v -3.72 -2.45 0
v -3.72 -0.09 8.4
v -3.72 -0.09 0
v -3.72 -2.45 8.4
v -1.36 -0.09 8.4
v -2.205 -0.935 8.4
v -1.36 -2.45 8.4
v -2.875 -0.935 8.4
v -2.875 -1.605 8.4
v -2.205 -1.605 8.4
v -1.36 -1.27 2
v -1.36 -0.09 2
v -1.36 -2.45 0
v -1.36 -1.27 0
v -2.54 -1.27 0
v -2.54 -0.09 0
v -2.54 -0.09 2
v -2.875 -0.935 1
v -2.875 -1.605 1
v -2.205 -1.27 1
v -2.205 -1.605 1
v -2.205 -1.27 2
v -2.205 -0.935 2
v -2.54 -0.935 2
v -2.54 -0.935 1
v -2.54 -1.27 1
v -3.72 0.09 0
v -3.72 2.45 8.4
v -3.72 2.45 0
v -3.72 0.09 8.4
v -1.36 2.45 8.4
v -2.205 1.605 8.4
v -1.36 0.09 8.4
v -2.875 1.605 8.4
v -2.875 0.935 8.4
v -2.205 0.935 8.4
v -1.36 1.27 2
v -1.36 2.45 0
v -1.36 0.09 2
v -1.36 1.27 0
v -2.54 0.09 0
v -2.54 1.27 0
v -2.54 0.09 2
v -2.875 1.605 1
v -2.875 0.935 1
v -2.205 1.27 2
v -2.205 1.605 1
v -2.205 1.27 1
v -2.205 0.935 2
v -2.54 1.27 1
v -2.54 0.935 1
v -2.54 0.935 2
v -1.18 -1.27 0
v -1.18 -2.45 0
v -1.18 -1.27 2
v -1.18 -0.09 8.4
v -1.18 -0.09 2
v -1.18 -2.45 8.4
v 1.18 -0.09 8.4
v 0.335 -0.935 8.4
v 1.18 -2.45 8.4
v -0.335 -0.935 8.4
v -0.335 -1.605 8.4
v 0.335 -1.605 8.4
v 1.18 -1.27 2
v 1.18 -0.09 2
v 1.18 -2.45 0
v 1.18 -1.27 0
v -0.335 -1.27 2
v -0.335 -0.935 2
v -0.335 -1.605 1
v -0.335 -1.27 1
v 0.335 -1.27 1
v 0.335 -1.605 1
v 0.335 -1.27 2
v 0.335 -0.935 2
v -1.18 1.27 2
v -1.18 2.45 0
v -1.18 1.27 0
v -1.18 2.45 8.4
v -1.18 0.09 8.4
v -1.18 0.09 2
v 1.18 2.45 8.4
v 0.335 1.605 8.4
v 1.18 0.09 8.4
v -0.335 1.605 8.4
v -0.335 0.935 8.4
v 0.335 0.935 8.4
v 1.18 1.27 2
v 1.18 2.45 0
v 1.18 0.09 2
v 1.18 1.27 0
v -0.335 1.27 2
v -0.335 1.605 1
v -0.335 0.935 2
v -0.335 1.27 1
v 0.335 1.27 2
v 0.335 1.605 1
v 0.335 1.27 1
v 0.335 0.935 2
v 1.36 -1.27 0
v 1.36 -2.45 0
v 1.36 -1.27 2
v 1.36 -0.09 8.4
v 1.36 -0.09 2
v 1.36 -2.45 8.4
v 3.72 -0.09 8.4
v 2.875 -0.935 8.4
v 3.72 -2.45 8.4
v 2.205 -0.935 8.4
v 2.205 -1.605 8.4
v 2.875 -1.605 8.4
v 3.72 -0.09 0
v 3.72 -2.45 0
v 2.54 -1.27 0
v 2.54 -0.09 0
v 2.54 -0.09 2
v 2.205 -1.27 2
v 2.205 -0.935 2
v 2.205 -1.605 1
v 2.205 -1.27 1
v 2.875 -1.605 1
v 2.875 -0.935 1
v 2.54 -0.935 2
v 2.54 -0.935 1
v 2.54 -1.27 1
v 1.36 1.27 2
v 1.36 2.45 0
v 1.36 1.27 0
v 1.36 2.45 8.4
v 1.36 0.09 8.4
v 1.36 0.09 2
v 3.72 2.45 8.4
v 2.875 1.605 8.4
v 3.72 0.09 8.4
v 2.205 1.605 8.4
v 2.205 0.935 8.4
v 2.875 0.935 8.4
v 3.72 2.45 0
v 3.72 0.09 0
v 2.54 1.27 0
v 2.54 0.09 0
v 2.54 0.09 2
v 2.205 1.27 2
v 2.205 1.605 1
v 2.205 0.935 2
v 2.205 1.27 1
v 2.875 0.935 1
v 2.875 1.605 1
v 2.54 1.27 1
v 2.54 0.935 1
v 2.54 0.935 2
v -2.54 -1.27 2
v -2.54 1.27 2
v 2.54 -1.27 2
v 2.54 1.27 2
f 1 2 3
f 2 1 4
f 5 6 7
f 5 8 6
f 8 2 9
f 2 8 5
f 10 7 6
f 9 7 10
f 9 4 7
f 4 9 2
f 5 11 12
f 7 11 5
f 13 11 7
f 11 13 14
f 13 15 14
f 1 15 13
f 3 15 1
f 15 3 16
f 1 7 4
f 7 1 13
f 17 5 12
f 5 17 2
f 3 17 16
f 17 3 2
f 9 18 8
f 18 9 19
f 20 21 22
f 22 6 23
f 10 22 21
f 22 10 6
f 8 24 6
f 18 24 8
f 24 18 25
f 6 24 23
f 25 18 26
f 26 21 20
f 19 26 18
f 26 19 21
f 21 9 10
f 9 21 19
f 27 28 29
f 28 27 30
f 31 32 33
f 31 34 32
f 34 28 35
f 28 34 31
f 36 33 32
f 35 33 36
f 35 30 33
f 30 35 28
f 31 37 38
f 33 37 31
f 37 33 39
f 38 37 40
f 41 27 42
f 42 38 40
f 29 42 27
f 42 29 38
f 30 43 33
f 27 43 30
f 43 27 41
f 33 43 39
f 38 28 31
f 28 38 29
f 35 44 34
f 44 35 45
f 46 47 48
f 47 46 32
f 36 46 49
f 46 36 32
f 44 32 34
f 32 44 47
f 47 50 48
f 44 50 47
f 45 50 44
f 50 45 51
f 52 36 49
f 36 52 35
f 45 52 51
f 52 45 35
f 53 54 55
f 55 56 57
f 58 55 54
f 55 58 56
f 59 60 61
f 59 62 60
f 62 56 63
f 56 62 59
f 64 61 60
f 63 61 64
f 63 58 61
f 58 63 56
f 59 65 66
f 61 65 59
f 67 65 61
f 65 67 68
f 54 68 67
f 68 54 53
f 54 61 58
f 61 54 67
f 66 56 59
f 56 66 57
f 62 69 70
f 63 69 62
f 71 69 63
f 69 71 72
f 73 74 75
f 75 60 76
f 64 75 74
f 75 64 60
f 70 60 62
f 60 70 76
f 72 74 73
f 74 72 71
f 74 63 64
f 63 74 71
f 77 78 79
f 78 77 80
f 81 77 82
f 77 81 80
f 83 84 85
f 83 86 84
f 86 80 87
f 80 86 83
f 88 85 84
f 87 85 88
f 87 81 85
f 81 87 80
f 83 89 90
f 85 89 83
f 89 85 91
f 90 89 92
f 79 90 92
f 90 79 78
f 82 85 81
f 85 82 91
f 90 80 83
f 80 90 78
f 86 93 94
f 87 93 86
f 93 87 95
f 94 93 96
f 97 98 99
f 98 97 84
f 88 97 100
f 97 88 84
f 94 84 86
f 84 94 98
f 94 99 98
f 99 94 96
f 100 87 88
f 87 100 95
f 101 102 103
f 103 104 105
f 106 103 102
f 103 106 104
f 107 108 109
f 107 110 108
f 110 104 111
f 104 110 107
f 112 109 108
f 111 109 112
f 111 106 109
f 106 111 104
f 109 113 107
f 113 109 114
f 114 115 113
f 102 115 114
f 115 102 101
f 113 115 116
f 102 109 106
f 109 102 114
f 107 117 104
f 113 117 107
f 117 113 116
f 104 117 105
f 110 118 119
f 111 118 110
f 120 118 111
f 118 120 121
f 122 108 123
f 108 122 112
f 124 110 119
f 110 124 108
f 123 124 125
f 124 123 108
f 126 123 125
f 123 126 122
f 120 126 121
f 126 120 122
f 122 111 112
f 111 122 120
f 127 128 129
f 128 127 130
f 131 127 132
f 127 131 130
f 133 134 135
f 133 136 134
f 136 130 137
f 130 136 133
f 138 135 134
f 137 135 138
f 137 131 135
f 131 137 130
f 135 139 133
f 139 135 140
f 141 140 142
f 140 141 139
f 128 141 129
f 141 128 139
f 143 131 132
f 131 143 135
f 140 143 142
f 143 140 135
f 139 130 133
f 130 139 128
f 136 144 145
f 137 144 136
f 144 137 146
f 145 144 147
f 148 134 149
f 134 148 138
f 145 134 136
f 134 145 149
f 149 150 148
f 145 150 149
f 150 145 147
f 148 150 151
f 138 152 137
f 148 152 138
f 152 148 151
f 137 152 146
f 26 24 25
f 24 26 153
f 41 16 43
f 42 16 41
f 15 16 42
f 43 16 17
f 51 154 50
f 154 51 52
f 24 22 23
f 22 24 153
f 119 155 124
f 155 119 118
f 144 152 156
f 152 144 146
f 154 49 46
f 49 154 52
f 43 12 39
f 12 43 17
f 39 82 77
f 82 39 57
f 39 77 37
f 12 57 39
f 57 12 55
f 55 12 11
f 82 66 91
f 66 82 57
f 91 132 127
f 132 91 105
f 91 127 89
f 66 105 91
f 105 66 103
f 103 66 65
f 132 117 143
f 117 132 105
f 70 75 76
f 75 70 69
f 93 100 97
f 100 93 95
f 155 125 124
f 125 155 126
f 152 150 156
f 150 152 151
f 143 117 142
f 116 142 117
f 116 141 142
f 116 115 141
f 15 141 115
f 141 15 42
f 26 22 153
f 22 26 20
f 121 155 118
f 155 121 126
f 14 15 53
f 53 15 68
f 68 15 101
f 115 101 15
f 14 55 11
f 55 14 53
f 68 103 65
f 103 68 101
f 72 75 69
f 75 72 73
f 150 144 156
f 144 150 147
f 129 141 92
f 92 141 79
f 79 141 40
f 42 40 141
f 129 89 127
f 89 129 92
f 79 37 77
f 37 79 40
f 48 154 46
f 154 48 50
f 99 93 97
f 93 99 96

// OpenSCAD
/*
  Breakaway Female Header Pins: pitch 2.54, adjustable
  Neeraj Verma
  July 31 2018
  GPL V3

  derived from Molex KK 100 break-away header:
  http://www.molex.com/pdm_docs/sd/022032041_sd.pdf

  Usage (default values shown): 
  ```
  use </path/to/libraries/header_pins.scad>
  //full
  headerPinsFemale(columns = 3, rows = 2, centerV = false, center = true, pitch = 2.52);
  //simple
  headerPinsFemale(3, 2);
  ```
  columns = integer number of columns (X axis)
  rows = integer number of rows (Y axis)
  centerV = vertically center around base - fale places bottom at origin
  center = center the array at the origin
  pitch = distance between center of each pin

  Note: 
  * the breakaway connector is a bit of a fudge and does not appear at the same
    Z height for centered/versus non centered; this should be largely irrelevant 

  updates can be found at GitHub:
  https://github.com/txoof/OpenSCAD_electronics

*/

/*[Dimensions]*/
//Columns
columns = 3; //[1:30]
//Rows
rows = 2; //[1:5]
//Pitch
pitch = 2.54; //[1.25, 1.27, 2, 2.54, 3.5, 3.96]

pinHeight=8.4;

pinAboveNylon=1;

module singlePinFemale(center = false, locate = false, v = false, pinHeight=14.22, pinAboveNylon = 7.49) {
  pinDimensions = [.67, .67, pinHeight];
  nylonDimensions = [2.36, 2.36, pinHeight];

  trans = center == false ? [0, 0, nylonDimensions[2]/2] : [0, 0, 0];

  translate(trans)
  difference() {
    color("darkgray")
      cube(nylonDimensions, center =true);
    translate([0, 0, (-pinDimensions[2]/2+nylonDimensions[2]/2)+pinAboveNylon])
      color("gold")
      cube(pinDimensions, center = true);    
  }

  if (v) {
    echo("single pin dimension:", pinDimensions);
    echo("pin above nylon:", pinAboveNylon);
  }

}

module headerPinsFemale(columns = 3, rows = 2, centerV = false, center = true, 
                  pitch = 2.54, locate = false, v = false, pinHeight=14.22, pinAboveNylon=7.49) {
  transV = centerV == false ? pitch/2 : 0; // vertical center

  trans = center == false ? [0, 0, 0] : [-(columns-1)*pitch/2, -(rows-1)*pitch/2, 0];
  if (v) {
    echo("header pin array");
    echo("usage: columns, rows, centerV, center, pitch, locate, v(erbose)");
  }

  translate(trans) 
  union() {
    for (i = [0:columns-1]) {
      for (j = [0:rows-1]) {
        translate([pitch*i, pitch*j, 0])
          singlePinFemale(locate = locate, v = v, pinHeight=pinHeight, pinAboveNylon=pinAboveNylon);
      }
    }
    translate([0, 0, -pitch/2+transV])
      color("black")
      cube([pitch*(columns-1), pitch*(rows-1), 2]);
  }
}

//singlePinFemale();
headerPinsFemale(columns = columns , rows = rows, pitch = pitch, pinHeight = pinHeight, pinAboveNylon=pinAboveNylon);
